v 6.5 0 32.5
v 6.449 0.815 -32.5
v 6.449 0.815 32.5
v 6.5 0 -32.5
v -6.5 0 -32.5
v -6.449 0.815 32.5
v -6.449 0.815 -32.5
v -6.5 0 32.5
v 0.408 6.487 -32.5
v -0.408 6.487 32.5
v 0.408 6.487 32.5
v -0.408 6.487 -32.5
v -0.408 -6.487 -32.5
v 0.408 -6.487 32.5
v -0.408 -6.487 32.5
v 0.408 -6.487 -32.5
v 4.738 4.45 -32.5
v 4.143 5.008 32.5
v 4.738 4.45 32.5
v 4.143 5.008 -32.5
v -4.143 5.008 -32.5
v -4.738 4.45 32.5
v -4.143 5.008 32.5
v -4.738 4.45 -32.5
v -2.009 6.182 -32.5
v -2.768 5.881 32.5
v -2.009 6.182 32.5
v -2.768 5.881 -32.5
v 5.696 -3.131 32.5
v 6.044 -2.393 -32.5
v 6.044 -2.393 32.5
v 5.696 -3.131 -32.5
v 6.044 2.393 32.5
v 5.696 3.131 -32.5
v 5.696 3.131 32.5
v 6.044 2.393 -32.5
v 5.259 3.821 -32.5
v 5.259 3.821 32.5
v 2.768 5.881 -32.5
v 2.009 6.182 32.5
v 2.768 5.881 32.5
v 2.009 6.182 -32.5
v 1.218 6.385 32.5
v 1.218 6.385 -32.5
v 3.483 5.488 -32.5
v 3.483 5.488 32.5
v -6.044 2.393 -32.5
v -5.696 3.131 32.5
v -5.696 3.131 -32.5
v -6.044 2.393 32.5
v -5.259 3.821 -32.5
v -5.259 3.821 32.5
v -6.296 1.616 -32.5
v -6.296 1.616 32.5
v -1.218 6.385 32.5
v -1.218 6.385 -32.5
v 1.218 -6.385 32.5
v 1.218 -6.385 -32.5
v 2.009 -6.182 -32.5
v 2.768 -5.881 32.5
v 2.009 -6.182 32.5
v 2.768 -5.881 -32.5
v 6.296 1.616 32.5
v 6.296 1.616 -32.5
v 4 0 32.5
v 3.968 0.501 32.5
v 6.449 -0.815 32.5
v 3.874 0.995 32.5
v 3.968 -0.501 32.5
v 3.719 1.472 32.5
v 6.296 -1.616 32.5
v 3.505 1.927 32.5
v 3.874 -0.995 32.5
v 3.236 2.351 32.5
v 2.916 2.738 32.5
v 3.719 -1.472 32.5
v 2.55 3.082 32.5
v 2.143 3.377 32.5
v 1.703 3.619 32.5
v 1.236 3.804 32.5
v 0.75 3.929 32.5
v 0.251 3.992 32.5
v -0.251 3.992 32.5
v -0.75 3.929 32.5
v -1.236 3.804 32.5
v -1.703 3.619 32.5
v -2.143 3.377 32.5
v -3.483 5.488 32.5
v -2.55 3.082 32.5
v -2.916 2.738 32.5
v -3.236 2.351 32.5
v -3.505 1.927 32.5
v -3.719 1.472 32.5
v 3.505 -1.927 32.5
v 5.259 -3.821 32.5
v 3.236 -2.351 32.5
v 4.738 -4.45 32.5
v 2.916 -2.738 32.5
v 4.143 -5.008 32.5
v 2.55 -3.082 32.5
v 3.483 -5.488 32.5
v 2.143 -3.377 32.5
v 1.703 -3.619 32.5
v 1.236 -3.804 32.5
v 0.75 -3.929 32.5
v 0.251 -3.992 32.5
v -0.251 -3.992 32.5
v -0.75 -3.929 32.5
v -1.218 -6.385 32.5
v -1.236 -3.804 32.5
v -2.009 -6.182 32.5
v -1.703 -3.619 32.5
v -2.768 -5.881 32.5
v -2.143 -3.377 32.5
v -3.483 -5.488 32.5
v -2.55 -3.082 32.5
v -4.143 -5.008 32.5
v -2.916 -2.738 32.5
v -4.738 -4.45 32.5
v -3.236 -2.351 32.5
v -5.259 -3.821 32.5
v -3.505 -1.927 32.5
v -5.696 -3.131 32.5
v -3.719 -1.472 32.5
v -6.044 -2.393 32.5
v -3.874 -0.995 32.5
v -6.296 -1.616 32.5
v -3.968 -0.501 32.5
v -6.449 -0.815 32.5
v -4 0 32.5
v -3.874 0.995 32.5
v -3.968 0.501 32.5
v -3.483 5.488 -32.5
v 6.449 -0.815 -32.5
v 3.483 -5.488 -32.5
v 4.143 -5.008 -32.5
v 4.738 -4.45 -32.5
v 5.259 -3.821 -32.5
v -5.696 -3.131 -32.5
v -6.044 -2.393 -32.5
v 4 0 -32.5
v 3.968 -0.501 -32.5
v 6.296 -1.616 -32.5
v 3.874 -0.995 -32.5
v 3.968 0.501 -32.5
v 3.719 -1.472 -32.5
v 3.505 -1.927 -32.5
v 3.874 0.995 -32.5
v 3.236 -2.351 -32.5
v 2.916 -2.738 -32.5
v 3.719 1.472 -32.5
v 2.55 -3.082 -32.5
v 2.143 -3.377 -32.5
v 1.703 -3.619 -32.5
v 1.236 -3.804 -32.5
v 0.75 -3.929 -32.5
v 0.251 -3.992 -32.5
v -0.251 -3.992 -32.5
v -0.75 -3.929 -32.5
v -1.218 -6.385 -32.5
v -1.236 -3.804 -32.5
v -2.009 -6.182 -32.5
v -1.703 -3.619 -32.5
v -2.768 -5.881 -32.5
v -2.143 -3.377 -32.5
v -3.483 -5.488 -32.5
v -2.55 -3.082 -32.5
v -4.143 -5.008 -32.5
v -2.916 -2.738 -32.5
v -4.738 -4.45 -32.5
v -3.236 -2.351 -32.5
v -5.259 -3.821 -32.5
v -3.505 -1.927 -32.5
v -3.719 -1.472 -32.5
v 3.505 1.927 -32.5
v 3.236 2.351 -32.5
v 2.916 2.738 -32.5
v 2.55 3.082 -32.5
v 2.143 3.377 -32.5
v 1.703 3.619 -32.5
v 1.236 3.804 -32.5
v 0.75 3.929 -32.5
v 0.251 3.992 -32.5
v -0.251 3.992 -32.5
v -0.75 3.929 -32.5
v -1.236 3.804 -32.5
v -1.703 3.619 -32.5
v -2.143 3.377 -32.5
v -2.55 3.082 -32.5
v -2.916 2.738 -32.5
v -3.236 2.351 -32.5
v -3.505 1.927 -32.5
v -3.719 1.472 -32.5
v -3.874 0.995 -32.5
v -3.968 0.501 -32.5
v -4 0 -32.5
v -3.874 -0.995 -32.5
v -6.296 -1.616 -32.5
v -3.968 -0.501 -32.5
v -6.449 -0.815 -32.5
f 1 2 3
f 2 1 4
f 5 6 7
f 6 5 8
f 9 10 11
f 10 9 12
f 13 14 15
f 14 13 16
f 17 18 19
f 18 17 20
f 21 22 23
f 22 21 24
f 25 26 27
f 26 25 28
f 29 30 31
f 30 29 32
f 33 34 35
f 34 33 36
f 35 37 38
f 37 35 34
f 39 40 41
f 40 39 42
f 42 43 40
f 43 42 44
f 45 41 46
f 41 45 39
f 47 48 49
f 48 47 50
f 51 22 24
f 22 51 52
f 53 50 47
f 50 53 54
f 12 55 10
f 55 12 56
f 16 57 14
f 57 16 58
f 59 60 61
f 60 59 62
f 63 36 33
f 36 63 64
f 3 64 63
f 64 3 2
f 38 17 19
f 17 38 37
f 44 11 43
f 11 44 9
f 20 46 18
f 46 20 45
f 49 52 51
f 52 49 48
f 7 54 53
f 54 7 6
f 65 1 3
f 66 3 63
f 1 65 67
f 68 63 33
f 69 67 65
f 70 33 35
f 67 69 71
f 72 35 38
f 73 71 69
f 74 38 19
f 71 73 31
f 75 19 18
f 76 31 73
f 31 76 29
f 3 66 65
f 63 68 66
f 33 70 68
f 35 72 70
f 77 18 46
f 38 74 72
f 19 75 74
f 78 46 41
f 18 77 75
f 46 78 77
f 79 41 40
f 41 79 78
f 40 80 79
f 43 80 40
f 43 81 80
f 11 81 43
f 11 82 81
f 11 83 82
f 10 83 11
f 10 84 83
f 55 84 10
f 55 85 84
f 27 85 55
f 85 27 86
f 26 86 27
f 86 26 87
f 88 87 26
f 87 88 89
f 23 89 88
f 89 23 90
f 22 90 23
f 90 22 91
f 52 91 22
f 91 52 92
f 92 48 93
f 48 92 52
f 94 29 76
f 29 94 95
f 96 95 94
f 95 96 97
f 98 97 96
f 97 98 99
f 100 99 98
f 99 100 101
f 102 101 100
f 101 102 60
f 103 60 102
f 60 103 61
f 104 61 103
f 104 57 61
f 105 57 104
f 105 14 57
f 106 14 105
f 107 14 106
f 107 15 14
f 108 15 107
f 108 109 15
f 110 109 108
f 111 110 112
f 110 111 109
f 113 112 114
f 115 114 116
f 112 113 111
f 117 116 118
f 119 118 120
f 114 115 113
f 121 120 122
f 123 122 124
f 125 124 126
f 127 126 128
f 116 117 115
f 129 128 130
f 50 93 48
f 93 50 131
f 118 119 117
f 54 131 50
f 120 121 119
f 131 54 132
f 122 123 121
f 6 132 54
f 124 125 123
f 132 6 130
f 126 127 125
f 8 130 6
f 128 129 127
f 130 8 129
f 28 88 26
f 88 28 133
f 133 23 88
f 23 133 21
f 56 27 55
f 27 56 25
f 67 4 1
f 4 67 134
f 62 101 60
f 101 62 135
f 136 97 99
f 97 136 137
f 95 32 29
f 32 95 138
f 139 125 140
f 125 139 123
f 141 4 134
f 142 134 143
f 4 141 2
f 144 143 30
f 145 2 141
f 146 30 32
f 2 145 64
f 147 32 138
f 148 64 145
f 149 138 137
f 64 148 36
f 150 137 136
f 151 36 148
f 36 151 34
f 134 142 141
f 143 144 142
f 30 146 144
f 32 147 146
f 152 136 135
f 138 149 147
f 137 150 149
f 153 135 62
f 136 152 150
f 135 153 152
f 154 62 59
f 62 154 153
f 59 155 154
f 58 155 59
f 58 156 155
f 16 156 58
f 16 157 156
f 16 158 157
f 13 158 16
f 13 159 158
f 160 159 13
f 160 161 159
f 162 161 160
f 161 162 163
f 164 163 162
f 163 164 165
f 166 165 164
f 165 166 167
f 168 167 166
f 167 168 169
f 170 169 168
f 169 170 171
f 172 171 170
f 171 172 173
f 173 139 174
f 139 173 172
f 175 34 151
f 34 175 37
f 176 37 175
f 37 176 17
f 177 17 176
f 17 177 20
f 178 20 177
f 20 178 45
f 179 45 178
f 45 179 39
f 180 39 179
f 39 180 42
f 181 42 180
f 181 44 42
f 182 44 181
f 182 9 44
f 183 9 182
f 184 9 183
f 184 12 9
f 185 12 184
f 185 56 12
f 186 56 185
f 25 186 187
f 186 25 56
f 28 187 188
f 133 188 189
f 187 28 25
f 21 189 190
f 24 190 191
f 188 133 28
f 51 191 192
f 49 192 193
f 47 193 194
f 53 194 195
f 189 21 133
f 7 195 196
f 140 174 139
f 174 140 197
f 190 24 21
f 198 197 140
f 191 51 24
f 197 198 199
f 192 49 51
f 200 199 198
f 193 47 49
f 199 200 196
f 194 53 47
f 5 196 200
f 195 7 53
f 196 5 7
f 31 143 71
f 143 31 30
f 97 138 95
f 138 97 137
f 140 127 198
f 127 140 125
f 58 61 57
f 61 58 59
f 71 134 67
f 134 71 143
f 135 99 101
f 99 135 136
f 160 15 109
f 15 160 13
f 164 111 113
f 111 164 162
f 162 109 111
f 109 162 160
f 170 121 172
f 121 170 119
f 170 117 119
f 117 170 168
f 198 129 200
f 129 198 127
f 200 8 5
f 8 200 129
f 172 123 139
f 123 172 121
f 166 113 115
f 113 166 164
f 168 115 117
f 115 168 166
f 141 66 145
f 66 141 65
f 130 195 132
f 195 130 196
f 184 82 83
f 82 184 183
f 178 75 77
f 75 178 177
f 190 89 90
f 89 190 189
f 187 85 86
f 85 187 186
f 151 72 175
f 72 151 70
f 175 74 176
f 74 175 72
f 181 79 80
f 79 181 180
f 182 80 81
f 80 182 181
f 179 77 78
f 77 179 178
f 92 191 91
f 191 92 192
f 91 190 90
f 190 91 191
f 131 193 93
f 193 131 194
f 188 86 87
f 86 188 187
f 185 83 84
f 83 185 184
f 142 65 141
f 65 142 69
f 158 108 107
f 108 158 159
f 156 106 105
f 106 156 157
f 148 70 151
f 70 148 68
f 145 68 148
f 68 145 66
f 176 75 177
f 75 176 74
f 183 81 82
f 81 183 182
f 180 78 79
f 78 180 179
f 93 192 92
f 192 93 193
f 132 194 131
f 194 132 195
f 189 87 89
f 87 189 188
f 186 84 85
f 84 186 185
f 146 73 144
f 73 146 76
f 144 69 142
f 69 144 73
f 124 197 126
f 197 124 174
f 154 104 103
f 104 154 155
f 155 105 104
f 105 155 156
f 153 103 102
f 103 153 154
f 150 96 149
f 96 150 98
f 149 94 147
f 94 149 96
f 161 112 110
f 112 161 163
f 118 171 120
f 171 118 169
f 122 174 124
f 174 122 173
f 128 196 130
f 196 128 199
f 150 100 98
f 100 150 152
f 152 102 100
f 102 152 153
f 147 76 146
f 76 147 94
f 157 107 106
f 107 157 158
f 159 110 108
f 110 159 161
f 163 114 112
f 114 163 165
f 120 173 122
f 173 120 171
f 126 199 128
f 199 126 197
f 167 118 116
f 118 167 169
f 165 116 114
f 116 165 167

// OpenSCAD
$fn = 50;


difference() {
	union() {
		translate(v = [0, 0, -32.5000000000]) {
			cylinder(h = 65, r = 6.5000000000);
		}
	}
	union() {
		translate(v = [0, 0, -100.0000000000]) {
			cylinder(h = 200, r = 4.0000000000);
		}
	}
}
